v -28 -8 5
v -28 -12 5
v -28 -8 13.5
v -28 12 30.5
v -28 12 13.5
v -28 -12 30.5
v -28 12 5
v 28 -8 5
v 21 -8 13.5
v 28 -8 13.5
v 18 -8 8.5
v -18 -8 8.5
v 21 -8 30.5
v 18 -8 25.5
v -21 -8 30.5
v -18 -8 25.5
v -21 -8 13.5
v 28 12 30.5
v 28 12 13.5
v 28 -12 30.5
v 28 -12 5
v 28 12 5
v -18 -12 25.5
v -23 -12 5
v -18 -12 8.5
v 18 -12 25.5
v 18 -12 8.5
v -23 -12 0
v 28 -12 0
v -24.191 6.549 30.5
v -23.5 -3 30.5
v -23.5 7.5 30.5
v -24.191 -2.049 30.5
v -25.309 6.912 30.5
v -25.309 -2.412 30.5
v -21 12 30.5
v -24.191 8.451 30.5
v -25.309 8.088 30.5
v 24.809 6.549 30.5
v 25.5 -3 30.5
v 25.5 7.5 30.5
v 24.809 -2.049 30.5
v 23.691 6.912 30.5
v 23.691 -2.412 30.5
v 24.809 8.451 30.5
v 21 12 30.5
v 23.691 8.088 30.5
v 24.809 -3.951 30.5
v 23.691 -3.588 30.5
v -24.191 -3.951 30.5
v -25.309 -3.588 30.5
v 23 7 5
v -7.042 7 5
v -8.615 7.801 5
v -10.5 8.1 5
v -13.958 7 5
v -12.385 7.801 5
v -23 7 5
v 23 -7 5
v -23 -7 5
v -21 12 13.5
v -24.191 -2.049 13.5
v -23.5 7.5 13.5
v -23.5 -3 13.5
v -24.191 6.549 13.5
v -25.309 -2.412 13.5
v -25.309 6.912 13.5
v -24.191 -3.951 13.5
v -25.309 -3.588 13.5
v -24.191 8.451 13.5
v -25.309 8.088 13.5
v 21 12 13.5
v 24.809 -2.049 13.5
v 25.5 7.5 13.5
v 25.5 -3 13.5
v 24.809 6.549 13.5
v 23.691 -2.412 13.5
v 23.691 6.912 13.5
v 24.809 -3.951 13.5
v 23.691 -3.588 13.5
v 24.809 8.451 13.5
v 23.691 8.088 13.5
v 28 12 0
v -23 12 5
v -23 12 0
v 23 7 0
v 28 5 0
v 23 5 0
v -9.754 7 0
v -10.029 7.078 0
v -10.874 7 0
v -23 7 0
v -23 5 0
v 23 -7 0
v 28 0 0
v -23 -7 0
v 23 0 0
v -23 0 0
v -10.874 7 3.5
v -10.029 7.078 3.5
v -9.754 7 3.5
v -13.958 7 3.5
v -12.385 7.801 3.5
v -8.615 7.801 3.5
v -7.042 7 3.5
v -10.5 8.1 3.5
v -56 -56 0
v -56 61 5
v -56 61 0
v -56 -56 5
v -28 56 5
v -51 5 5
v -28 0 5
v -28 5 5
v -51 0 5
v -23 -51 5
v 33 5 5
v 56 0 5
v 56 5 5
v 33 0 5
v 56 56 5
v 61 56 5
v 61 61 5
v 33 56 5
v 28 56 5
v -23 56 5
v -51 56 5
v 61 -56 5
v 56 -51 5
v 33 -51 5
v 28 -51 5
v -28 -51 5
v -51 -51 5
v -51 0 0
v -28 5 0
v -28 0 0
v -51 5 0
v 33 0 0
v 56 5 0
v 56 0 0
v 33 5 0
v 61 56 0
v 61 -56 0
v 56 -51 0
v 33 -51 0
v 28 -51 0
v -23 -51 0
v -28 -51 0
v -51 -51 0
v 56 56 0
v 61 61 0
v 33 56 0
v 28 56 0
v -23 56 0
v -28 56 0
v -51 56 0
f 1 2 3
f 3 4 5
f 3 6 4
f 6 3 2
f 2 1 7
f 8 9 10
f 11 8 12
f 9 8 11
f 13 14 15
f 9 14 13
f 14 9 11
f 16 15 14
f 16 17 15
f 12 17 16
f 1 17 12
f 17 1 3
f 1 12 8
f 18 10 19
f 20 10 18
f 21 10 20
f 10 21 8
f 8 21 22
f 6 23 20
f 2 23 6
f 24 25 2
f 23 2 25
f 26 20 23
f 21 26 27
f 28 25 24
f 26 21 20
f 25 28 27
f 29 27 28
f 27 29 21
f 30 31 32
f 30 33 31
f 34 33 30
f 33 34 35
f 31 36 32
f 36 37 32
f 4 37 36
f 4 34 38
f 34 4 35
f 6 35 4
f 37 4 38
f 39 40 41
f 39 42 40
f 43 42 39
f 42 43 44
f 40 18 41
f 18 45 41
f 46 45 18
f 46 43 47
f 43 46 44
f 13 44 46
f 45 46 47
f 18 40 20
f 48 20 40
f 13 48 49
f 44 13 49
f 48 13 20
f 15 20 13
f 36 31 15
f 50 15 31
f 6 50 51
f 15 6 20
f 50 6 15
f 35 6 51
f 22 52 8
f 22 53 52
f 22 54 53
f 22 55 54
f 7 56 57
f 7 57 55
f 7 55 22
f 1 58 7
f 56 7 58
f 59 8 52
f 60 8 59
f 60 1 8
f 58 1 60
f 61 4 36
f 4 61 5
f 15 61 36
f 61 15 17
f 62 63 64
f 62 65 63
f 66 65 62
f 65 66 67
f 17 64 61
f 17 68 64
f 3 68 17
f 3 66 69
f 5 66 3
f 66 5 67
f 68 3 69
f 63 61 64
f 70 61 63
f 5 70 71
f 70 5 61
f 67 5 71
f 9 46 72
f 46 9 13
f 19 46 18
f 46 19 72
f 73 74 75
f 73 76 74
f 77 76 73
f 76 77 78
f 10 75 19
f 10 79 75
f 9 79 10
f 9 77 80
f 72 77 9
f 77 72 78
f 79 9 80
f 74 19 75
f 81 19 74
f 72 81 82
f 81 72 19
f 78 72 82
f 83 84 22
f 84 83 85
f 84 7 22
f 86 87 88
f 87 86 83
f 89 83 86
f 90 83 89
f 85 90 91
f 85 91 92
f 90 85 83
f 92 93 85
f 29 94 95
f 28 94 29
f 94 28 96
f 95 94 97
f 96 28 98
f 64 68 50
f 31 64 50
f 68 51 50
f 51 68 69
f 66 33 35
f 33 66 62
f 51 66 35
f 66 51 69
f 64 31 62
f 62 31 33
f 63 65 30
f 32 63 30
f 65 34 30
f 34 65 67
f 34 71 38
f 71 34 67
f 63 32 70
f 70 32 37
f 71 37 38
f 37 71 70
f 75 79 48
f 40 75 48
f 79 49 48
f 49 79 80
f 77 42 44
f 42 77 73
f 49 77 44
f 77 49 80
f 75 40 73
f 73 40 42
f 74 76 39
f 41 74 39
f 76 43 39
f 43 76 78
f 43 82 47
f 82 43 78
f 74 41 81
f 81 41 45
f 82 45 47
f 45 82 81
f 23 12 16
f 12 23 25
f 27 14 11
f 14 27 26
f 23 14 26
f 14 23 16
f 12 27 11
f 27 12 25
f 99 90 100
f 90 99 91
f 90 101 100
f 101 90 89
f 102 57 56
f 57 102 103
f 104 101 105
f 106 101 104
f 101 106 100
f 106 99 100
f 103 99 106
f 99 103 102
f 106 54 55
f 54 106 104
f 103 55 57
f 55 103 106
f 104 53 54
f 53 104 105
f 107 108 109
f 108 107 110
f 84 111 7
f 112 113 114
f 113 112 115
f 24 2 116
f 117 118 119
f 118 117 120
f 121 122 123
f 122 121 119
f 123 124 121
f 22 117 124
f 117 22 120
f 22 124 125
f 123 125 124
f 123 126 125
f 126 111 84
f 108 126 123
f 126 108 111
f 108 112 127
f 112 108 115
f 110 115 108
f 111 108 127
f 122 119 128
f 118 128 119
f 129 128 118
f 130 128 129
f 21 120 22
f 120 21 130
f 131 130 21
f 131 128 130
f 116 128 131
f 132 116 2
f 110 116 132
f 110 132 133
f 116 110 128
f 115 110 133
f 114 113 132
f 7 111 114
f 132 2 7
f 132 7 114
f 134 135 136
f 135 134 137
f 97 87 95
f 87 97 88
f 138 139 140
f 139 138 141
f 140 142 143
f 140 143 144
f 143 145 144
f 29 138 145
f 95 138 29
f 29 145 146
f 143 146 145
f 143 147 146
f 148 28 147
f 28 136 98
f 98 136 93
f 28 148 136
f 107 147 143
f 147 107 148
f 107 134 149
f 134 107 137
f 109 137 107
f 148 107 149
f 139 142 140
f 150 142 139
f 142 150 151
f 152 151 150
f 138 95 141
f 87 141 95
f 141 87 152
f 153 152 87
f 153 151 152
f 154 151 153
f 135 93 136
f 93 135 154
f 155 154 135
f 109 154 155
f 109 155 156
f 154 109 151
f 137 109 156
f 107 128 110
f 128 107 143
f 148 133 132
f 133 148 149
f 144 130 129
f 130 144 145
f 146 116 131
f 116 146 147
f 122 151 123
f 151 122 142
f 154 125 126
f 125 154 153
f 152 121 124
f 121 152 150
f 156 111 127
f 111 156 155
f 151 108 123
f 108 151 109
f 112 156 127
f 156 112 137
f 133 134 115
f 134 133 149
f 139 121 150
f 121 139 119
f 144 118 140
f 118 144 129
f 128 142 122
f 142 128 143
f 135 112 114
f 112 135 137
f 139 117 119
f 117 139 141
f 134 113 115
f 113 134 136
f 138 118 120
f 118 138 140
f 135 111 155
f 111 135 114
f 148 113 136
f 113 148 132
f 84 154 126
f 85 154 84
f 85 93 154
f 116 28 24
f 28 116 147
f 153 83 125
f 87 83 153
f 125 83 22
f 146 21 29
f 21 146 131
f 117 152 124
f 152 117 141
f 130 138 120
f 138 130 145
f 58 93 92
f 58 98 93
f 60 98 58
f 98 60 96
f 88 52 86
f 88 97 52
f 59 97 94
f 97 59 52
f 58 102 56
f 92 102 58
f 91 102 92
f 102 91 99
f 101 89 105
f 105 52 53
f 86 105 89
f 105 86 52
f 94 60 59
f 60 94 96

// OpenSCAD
// file: serv_box_1.scad
floor_l = 55+1;//len有误差，长度增加1.
floor_w = 17;//width
floor_h = 4;//height
wall_l = 7;//len
wall_h = 20;//height

back_wall = 8.5;
back_wall_w = 5;

module serv_box_1(){
    difference(){
        union(){
            //设置底座。
            cube(size=[floor_l,floor_w+back_wall,floor_h]);
            //设置左侧，放在底座上面。
            translate([0,0,floor_h]) cube(size=[wall_l,floor_w,wall_h]);
            //设置右侧，放在底座上面。
            translate([floor_l - wall_l ,0,floor_h]) cube(size=[wall_l,floor_w,wall_h]);
            
            //设置顶部
            //translate([0,0,wall_h+floor_h]) cube(size=[floor_l,floor_w,floor_h]);
            //设置侧面
            translate([0,floor_w++back_wall,0]) cube(size=[floor_l,back_wall_w,wall_h+floor_h]);
        }
        union(){
            //去掉螺丝孔
            screw_w = 2;
            //左侧
            translate([3.5,0,floor_h+5]) rotate(a=[270,0,0]) cylinder(h=floor_w,d=screw_w);
            translate([3.5,0,floor_h+5+10.5]) rotate(a=[270,0,0]) cylinder(h=floor_w,d=screw_w);
            //右侧
            translate([floor_l-3.5,0,floor_h+5]) rotate(a=[270,0,0]) cylinder(h=floor_w,d=screw_w);
            translate([floor_l-3.5,0,floor_h+5+10.5]) rotate(a=[270,0,0]) cylinder(h=floor_w,d=screw_w);
            //底部挖空减轻重量
            translate([10,5,0]) cube(size=[floor_l-20,floor_w+back_wall_w-5,wall_h+floor_h*2]);
            
            //法兰盘卡槽。
            flange_w = floor_w+back_wall;
            translate([17.5,0,floor_h+wall_h/2]) rotate(a=[270,0,0])  cylinder(h=flange_w+100,d=10.2);
            translate([17.5,0,floor_h+wall_h/2]) rotate(a=[270,0,0]) cylinder(h=flange_w+1.5,d=12.2);
            
            //只打印一般测试。
            //translate([floor_l/2,0,0]) cube(size=[100,100,100]);
        }
    }
}
//for test.
//serv_box_1();
// main file
//使用use，重复利用模型，不需要每次都画。
use <serv_box_1.scad>;

motor_l = 55+1;
motor_w = 24;

bracket_l = (motor_l)*2;//len有误差，长度增加1.
bracket_h = 5;


module out_bracket(){
    cube(size=[bracket_l,bracket_h,bracket_h]);
}
//画田字格底座，再和舵机支架拼接起来。
module bracket(){
    //前外围支架
    translate([0,0,0]) out_bracket();
    //后外围支架
    translate([0,bracket_l,0]) cube(size=[bracket_l+bracket_h,bracket_h,bracket_h]);
    //左外围支架
    translate([0,bracket_l,0]) rotate(a=[0,0,270]) out_bracket();
    //后右围支架
    translate([bracket_l,bracket_l,0]) rotate(a=[0,0,270]) out_bracket();
    //中间一根支架
    translate([0,bracket_l/2,0]) out_bracket();
    //中间连根支架，卡住舵机长度。
    translate([(bracket_l-motor_l)/2,bracket_l,0]) rotate(a=[0,0,270]) out_bracket();
    translate([(bracket_l-motor_l)/2+motor_l,bracket_l,0]) rotate(a=[0,0,270]) out_bracket();
}

difference(){
    union(){
        //调用之前的舵机支架。移动到中心。
        translate([-motor_l/2,-motor_w/2,30.5]) rotate(a=[-90,0,0]) serv_box_1();
        //移动到中心。
        translate([-bracket_l/2,-bracket_l/2,0]) bracket();
    }
    tmp_l = motor_l-10;
    tmp_w = motor_w-10;
    translate([-(tmp_l)/2,-(tmp_w)/2,0]) cube(size=[tmp_l,tmp_w,bracket_h*2]);
}
